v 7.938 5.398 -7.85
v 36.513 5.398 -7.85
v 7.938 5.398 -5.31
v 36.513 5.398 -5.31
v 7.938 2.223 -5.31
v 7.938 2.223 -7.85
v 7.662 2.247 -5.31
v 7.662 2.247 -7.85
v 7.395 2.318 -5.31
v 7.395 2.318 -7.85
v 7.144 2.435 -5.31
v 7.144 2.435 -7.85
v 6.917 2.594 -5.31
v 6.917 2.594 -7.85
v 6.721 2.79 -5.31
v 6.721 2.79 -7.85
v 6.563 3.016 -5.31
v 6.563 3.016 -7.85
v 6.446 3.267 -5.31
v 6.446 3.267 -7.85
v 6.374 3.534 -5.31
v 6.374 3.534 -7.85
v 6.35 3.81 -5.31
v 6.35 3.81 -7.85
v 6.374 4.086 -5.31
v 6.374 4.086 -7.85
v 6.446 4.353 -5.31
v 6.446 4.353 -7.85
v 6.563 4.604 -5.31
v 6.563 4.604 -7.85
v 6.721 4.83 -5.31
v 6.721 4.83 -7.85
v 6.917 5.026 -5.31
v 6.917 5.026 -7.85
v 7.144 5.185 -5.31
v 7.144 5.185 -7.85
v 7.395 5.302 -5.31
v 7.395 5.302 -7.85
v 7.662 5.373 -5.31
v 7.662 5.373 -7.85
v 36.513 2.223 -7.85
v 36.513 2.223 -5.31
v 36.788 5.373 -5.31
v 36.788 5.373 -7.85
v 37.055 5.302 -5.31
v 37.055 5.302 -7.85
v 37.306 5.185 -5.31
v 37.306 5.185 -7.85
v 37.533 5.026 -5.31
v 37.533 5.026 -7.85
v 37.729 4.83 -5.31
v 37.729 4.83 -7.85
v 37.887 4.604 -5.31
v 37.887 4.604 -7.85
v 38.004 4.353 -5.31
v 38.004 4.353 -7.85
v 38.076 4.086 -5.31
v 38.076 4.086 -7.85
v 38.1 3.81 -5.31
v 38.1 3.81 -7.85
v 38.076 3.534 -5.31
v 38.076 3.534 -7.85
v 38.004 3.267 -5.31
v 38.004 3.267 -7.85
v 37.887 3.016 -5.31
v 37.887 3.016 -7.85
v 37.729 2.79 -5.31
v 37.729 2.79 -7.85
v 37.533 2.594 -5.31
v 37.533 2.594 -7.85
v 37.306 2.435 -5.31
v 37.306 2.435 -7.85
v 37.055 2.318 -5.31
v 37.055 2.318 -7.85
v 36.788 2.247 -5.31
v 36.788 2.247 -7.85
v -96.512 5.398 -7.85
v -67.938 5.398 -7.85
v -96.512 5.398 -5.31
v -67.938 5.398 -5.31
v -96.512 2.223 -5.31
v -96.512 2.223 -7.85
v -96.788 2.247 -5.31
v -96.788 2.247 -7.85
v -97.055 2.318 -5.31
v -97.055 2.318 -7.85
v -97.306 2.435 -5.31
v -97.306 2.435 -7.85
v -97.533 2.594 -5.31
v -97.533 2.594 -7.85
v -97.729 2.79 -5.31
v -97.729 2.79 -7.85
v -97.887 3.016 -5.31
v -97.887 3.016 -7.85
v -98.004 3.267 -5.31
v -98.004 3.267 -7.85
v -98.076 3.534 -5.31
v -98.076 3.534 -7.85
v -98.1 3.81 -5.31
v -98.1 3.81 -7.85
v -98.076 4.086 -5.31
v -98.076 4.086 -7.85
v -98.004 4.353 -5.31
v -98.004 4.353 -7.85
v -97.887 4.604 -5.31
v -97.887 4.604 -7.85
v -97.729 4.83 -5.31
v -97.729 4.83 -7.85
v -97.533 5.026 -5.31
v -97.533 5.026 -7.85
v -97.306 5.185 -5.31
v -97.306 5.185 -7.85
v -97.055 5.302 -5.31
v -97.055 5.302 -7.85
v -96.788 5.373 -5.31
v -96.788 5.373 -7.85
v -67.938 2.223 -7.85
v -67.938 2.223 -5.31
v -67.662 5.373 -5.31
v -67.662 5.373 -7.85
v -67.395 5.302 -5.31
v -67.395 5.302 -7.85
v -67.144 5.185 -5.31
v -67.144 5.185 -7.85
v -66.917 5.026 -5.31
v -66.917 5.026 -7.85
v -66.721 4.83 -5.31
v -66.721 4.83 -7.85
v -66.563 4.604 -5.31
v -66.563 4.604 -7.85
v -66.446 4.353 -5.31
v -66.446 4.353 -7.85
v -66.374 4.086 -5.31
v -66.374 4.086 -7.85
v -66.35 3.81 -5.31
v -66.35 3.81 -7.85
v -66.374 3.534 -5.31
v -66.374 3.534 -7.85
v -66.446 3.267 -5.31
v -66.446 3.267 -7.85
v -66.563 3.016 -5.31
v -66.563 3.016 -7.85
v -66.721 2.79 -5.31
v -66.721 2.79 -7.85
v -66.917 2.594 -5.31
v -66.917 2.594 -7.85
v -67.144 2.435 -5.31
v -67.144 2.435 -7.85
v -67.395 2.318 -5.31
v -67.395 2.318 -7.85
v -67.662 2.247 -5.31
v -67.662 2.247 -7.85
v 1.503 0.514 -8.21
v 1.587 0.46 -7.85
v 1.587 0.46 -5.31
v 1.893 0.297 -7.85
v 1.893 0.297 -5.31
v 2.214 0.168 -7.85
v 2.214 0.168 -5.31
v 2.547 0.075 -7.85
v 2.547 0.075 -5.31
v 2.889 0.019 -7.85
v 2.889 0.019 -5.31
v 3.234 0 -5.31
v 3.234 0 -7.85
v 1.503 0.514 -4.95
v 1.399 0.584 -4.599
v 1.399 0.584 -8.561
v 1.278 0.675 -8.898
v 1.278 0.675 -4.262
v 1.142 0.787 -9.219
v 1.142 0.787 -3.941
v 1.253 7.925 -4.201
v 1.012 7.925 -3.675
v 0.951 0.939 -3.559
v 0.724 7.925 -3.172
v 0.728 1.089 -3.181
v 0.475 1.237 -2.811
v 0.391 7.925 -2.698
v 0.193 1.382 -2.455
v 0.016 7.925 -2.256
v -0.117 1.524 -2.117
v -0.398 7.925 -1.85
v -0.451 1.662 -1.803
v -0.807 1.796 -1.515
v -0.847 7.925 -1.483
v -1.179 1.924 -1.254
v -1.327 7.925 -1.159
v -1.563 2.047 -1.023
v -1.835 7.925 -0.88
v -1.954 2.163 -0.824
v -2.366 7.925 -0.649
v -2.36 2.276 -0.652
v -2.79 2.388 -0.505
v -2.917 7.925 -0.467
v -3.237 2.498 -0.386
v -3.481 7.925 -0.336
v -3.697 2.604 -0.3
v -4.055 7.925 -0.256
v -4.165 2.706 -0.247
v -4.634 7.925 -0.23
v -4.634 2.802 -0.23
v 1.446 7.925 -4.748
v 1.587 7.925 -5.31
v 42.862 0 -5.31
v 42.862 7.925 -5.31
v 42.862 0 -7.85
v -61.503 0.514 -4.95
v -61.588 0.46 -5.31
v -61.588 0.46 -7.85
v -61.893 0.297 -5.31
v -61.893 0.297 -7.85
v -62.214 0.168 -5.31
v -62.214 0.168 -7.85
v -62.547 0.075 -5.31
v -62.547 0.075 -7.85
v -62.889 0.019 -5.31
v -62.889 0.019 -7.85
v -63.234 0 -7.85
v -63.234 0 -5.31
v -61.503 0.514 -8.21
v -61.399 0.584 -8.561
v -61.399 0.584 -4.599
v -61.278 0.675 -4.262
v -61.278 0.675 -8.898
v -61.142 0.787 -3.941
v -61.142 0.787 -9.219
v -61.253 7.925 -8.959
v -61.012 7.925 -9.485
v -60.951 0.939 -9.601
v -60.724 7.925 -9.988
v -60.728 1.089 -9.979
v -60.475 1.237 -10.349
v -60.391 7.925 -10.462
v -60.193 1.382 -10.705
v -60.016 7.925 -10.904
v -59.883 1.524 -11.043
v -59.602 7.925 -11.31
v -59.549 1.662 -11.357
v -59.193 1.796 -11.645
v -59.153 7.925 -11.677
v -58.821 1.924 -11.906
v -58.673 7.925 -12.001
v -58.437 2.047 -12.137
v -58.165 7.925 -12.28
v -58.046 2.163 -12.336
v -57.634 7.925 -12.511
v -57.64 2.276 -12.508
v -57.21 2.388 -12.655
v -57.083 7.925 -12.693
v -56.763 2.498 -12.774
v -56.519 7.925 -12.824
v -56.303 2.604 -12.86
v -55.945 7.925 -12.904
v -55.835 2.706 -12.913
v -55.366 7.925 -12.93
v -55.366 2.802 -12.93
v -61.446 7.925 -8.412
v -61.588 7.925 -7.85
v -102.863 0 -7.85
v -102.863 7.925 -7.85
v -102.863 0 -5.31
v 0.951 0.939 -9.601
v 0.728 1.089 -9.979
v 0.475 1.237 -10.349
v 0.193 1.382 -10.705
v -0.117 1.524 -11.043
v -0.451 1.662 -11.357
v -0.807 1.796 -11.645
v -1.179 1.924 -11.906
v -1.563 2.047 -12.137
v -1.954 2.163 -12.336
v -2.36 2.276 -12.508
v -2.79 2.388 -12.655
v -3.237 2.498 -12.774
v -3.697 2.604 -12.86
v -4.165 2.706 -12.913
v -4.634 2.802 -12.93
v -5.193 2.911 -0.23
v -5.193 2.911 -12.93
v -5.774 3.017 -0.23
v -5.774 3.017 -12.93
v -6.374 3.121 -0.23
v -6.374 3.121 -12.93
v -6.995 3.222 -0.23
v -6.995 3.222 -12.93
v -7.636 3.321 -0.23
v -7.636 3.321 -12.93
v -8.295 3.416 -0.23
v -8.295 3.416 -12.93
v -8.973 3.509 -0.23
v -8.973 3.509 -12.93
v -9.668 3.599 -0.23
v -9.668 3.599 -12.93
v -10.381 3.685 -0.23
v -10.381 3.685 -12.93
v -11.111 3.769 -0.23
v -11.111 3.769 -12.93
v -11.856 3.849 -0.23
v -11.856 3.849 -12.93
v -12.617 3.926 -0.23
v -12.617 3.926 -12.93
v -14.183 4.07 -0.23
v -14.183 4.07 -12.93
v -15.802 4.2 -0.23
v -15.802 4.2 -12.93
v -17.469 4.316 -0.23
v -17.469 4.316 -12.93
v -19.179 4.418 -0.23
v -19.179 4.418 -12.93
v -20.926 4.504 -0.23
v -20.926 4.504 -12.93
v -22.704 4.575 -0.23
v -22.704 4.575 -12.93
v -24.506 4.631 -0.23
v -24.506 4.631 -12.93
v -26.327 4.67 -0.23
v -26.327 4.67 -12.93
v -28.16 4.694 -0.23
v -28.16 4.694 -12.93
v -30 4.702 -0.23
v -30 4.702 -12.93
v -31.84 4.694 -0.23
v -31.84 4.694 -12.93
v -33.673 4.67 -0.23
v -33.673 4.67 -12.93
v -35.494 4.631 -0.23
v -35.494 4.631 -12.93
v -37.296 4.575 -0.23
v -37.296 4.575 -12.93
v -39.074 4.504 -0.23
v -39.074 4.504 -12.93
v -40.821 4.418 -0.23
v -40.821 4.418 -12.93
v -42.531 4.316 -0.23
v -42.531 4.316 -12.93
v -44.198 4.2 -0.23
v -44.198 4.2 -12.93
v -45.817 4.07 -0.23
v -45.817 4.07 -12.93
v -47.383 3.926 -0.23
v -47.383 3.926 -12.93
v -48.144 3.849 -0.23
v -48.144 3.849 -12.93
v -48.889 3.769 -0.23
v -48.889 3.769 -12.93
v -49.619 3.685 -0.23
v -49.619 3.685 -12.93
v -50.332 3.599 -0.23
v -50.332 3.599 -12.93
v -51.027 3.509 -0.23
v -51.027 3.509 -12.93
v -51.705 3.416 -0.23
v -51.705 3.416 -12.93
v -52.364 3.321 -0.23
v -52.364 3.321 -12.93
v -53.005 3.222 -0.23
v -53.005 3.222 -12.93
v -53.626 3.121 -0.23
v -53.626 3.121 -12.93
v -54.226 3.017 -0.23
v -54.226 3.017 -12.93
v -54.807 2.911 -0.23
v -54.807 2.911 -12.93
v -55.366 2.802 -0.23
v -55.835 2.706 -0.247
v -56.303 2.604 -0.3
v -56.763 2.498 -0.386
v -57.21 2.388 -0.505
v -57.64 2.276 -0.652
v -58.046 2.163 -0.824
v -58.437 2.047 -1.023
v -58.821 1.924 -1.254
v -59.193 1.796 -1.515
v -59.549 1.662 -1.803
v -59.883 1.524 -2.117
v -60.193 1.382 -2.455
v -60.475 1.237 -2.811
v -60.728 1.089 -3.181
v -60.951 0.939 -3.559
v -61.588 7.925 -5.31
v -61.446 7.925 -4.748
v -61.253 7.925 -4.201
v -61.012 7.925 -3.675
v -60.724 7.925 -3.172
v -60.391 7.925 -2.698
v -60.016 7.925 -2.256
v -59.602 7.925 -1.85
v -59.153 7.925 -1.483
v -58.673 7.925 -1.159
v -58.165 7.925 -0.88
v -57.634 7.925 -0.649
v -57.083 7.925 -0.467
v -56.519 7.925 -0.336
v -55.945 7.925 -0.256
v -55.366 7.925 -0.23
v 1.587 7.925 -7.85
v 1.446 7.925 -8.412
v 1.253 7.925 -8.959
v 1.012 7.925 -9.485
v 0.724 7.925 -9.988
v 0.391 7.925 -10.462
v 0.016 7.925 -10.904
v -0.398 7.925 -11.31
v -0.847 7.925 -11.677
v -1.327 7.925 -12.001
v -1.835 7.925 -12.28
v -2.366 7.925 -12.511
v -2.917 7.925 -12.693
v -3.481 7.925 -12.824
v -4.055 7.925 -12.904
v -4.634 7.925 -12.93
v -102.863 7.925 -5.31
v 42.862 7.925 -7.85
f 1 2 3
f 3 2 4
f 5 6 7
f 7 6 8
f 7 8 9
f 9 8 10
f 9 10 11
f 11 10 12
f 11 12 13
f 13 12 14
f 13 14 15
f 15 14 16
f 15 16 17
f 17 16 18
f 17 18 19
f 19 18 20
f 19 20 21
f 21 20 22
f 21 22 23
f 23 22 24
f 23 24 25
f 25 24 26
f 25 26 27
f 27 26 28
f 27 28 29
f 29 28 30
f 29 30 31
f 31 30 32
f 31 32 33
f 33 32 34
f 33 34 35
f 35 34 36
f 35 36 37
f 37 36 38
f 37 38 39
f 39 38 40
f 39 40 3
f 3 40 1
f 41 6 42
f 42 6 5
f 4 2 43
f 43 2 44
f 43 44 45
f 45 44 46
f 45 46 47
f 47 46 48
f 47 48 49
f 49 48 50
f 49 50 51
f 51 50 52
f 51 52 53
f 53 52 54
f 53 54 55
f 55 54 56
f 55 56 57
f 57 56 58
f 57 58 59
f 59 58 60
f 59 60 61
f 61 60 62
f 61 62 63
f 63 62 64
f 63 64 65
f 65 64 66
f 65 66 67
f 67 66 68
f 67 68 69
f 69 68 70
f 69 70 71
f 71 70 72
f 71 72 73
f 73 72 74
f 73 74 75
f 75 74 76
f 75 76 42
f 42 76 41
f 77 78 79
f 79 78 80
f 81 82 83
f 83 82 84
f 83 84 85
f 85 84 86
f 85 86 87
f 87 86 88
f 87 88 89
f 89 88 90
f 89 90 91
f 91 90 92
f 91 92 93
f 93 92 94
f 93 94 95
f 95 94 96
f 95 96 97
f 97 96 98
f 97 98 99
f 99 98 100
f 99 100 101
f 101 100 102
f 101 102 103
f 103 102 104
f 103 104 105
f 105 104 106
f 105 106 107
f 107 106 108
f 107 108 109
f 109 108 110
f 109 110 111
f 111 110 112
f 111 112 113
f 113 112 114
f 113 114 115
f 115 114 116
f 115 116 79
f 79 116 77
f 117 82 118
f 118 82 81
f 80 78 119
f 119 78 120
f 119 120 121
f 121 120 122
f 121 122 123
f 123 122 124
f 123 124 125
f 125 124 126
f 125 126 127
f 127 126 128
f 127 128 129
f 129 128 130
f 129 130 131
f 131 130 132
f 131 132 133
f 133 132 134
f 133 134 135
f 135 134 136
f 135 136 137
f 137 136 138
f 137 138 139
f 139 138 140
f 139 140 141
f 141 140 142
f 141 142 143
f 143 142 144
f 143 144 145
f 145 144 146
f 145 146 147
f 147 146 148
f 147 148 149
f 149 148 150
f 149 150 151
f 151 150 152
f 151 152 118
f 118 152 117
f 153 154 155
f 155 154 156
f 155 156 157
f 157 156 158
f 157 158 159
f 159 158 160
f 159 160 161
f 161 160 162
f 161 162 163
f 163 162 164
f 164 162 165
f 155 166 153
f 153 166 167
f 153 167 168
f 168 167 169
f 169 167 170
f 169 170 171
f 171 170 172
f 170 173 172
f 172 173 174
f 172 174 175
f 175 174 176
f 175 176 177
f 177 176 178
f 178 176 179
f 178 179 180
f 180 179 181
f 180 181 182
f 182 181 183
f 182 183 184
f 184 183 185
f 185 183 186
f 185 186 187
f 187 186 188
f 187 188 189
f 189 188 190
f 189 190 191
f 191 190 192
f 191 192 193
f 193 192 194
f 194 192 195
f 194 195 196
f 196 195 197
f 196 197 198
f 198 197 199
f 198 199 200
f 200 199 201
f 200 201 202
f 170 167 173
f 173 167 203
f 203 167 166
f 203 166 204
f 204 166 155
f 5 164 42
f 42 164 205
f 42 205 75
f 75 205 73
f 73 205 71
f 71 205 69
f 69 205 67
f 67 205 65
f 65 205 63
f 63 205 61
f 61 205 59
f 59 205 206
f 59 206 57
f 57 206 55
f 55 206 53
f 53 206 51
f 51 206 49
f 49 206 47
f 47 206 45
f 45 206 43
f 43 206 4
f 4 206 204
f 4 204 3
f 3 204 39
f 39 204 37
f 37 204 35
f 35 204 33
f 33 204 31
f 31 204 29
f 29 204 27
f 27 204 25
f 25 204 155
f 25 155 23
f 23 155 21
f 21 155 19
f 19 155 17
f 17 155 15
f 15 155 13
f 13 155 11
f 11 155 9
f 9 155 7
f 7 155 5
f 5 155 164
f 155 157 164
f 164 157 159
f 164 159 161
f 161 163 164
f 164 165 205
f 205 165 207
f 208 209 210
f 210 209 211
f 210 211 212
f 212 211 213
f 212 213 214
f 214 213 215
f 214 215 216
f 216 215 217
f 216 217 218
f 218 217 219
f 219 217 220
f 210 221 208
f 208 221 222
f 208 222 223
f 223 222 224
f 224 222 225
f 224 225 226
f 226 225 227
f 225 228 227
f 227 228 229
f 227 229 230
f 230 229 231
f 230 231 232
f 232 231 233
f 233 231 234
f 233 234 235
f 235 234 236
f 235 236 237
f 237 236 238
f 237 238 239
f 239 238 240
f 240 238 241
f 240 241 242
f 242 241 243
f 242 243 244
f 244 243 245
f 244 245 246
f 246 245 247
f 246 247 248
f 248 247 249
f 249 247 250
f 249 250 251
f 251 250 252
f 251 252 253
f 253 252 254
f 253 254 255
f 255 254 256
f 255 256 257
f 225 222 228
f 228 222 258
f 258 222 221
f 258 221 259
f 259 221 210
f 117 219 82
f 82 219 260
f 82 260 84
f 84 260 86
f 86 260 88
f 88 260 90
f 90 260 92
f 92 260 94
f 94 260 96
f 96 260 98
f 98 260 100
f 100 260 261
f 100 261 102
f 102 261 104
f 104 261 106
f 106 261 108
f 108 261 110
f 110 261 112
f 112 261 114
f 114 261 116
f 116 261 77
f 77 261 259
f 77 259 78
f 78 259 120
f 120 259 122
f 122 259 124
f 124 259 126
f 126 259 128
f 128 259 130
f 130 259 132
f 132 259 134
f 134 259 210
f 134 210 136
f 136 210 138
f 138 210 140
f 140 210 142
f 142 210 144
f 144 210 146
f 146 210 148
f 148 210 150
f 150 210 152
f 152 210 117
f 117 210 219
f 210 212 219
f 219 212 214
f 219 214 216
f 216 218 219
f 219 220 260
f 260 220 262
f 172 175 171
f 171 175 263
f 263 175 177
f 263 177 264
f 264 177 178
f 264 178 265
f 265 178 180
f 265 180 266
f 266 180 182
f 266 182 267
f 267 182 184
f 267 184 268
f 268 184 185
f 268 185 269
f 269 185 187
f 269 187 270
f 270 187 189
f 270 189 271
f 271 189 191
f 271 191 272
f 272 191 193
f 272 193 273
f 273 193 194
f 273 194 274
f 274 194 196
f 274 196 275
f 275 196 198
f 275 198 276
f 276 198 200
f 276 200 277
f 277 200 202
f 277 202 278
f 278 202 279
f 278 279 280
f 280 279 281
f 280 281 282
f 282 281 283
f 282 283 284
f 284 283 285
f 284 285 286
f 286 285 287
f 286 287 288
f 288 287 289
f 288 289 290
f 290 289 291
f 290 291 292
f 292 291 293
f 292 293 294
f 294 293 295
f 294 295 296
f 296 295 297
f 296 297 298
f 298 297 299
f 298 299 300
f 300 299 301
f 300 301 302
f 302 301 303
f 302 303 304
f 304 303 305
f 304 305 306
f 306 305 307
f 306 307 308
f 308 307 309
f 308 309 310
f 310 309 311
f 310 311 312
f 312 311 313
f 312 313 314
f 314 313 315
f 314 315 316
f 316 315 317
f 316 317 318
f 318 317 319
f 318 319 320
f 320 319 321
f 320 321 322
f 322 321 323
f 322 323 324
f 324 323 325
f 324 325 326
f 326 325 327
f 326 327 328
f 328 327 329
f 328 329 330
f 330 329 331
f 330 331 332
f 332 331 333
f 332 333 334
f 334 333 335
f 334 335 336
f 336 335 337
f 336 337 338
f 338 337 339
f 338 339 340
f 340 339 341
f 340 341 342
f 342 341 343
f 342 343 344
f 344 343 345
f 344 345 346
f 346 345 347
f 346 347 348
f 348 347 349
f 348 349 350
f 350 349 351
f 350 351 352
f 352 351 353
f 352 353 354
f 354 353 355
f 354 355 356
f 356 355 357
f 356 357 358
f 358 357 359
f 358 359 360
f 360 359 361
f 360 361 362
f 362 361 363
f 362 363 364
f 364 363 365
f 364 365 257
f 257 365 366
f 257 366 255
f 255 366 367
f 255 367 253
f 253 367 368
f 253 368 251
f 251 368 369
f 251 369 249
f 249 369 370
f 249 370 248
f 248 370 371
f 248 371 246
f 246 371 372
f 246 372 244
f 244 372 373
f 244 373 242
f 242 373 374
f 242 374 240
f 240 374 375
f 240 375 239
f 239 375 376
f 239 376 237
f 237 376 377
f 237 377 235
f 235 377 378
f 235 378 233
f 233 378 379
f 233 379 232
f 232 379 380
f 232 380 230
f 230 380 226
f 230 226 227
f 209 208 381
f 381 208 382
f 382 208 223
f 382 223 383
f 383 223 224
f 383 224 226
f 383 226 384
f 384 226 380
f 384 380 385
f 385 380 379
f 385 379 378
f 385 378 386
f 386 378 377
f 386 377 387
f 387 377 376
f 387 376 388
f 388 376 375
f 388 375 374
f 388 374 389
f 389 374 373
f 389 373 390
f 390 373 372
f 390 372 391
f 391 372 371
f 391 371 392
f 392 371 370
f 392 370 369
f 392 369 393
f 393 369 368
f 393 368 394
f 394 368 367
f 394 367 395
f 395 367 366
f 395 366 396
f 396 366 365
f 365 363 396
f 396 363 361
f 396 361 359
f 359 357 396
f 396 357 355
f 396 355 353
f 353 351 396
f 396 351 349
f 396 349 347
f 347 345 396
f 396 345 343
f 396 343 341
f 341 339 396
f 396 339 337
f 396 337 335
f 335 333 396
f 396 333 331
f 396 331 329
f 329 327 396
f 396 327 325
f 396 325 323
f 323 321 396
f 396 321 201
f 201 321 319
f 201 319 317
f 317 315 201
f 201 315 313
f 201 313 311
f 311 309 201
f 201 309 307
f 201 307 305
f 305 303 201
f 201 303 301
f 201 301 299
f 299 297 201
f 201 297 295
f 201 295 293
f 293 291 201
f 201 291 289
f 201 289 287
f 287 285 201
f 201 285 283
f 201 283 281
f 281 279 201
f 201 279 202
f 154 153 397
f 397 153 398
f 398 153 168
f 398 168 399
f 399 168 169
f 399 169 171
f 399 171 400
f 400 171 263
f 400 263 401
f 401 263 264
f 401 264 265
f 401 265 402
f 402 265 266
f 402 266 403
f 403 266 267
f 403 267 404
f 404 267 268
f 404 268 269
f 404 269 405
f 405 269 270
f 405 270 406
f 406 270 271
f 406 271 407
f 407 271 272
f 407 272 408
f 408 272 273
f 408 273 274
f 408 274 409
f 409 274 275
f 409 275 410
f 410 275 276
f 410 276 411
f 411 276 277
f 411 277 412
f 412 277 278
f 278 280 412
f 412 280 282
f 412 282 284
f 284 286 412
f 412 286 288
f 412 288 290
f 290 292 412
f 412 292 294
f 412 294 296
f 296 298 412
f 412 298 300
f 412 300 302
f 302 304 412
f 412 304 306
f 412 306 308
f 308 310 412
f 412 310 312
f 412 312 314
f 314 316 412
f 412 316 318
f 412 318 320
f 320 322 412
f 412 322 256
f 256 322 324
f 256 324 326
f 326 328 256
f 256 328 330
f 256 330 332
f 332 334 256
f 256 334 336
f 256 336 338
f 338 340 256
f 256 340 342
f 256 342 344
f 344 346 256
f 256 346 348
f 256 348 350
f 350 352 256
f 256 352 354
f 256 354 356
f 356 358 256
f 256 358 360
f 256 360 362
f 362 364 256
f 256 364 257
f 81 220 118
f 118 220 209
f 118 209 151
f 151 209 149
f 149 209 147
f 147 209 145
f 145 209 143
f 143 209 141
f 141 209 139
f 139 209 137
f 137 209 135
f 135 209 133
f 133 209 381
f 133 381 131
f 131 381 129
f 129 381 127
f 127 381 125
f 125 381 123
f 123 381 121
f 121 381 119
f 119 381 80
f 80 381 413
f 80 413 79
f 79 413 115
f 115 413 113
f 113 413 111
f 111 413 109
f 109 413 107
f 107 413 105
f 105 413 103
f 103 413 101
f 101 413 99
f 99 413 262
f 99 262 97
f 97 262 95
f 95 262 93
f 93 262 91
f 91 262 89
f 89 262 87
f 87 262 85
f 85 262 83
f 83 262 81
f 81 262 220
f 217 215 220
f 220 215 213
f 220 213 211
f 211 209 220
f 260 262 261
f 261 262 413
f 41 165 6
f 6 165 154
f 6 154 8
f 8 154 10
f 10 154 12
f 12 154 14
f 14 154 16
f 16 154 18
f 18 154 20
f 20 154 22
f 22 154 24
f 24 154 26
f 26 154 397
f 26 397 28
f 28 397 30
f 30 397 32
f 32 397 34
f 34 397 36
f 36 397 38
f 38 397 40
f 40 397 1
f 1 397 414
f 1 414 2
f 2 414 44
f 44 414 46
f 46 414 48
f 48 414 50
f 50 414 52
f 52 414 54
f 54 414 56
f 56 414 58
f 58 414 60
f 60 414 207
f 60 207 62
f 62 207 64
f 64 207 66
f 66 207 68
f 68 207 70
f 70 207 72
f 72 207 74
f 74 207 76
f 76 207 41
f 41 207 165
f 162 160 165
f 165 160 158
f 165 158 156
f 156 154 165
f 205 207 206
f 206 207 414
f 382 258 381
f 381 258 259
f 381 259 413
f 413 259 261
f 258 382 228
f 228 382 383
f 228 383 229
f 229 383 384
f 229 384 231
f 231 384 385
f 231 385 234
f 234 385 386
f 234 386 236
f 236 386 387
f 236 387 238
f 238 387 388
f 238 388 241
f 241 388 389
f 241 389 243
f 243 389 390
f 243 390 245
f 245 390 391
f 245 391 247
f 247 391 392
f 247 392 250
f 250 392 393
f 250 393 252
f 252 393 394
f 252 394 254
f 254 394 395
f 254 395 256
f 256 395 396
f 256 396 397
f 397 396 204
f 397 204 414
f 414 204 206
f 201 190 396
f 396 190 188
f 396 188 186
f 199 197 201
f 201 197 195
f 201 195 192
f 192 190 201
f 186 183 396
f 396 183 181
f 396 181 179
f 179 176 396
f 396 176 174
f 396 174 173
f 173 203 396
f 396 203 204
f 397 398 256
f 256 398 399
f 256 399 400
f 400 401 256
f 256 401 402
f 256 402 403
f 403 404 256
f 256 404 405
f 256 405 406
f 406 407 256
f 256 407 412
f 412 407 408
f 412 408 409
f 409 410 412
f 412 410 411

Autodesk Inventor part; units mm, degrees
ref_plane "YZ Plane" through (0, 0, 0) normal (1, 0, 0) x (0, 1, 0)
ref_plane "XZ Plane" through (0, 0, 0) normal (0, 1, 0) x (-1, 0, 0)
ref_plane "XY Plane" through (0, 0, 0) normal (0, 0, 1) x (1, 0, 0)
sketch "Sketch1" plane through (0, 0, 0) normal (0, 1, 0) x (-1, 0, 0)
  line L0 (-17.4625, -7.85) -> (-17.4625, -5.31)
  line L1 (-17.4625, -6.35) -> (-17.4625, -5.31)
  line L2 (-17.4625, -5.31) -> (-1.5875, -5.31)
  line L3 (-1.5875, -7.85) -> (-17.4625, -7.85)
  line L4 (-1.5875, -5.31) -> (-1.5875, -0.23)
  line L5 (-1.5875, -7.85) -> (-1.5875, -12.93)
  line L6 (-1.5875, -0.23) -> (30, -0.23)
  line L7 (-1.5875, -12.93) -> (30, -12.93)
  line L8 (30, -12.93) -> (30, -0.23)
  line L9 (61.5875, -7.85) -> (77.4625, -7.85)
  line L10 (77.4625, -5.31) -> (61.5875, -5.31)
  line L11 (77.4625, -7.85) -> (77.4625, -5.31)
  line L12 (77.4625, -6.35) -> (77.4625, -5.31)
  line L13 (61.5875, -7.85) -> (61.5875, -12.93)
  line L14 (61.5875, -5.31) -> (61.5875, -0.23)
  line L15 (61.5875, -0.23) -> (30, -0.23)
  line L16 (61.5875, -12.93) -> (30, -12.93)
  point P0 (-17.4625, -6.58)
  point P1 (77.4625, -6.58)
  dimension "d135" = 6.35
  dimension "d136" = 2.54
extrude "Extrusion1" add sketch "Sketch1" along normal blind 12.7
fillet "Fillet2" radius 6.35 4 edges at (1.5875, 6.35, -12.93) (1.5875, 6.35, -0.23) (-61.5875, 6.35, -12.93) (-61.5875, 6.35, -0.23)
move faces "Move4" translate (25.4, 0, 0) faces at (17.4625, 4.2333, -6.1567)
move faces "Move5" translate (-25.4, 0, 0) faces at (-77.4625, 4.2333, -7.0033)
sketch "Sketch6" plane through (-55.3658, 0, -0.23) normal (0, 0, 1) x (1, 0, 0)
  line L0 (50.7316, 0) -> (0, 0) projected
  line L1 (56.9533, 0) -> (50.7316, 0) projected
  ellipse E0 centre (25.3658, 0) end of major axis (56.9533, 0) minor radius 4.7022
  point P0 (55.3658, 0)
extrude "Extrusion18" cut sketch "Sketch6" against normal blind 20.6375
fillet "Fillet4" radius 3.175 2 edges at (-61.5875, 0, -6.58) (1.5875, 0, -6.58)
sketch "Sketch7" plane through (-102.8625, 12.7, -5.31) normal (0, 0, 1) x (1, 0, 0)
  line L0 (41.275, -12.2395) -> (41.275, 0) projected
  line L1 (41.275, -6.1198) -> (50.8, -6.1198) construction
  line L2 (0, -12.7) -> (0, 0) projected
  line L3 (41.275, -6.35) -> (47.625, -6.35) construction
  line L4 (98.2283, 0) -> (47.4967, 0) projected
  line L5 (72.8625, 0) -> (72.8625, -18.9978)
  line L6 (0, -12.7) -> (39.6282, -12.7) projected
  arc A0 (34.925, -10.4775) -> (34.925, -7.3025) centre (34.925, -8.89) ccw
  line L7 (0, -8.89) -> (6.35, -8.89)
  arc A1 (6.35, -7.3025) -> (6.35, -10.4775) centre (6.35, -8.89) ccw
  line L8 (34.925, -7.3025) -> (6.35, -7.3025)
  line L9 (6.35, -10.4775) -> (34.925, -10.4775)
  arc A2 (110.8, -7.3025) -> (110.8, -10.4775) centre (110.8, -8.89) ccw
  line L10 (145.725, -8.89) -> (139.375, -8.89)
  arc A3 (139.375, -10.4775) -> (139.375, -7.3025) centre (139.375, -8.89) ccw
  line L11 (110.8, -7.3025) -> (139.375, -7.3025)
  line L12 (139.375, -10.4775) -> (110.8, -10.4775)
  point P0 (102.8625, -12.7)
  dimension "d161" = 3.175
  dimension "d162" = 6.35
  dimension "d163" = 3.175
extrude "Extrusion19" cut sketch "Sketch7" against normal blind 20.6375
move faces "Move6" translate (0, -4.7752, 0) faces at (-21.5447, 12.7, -4.4633)
properties part number "AllFretBars"
